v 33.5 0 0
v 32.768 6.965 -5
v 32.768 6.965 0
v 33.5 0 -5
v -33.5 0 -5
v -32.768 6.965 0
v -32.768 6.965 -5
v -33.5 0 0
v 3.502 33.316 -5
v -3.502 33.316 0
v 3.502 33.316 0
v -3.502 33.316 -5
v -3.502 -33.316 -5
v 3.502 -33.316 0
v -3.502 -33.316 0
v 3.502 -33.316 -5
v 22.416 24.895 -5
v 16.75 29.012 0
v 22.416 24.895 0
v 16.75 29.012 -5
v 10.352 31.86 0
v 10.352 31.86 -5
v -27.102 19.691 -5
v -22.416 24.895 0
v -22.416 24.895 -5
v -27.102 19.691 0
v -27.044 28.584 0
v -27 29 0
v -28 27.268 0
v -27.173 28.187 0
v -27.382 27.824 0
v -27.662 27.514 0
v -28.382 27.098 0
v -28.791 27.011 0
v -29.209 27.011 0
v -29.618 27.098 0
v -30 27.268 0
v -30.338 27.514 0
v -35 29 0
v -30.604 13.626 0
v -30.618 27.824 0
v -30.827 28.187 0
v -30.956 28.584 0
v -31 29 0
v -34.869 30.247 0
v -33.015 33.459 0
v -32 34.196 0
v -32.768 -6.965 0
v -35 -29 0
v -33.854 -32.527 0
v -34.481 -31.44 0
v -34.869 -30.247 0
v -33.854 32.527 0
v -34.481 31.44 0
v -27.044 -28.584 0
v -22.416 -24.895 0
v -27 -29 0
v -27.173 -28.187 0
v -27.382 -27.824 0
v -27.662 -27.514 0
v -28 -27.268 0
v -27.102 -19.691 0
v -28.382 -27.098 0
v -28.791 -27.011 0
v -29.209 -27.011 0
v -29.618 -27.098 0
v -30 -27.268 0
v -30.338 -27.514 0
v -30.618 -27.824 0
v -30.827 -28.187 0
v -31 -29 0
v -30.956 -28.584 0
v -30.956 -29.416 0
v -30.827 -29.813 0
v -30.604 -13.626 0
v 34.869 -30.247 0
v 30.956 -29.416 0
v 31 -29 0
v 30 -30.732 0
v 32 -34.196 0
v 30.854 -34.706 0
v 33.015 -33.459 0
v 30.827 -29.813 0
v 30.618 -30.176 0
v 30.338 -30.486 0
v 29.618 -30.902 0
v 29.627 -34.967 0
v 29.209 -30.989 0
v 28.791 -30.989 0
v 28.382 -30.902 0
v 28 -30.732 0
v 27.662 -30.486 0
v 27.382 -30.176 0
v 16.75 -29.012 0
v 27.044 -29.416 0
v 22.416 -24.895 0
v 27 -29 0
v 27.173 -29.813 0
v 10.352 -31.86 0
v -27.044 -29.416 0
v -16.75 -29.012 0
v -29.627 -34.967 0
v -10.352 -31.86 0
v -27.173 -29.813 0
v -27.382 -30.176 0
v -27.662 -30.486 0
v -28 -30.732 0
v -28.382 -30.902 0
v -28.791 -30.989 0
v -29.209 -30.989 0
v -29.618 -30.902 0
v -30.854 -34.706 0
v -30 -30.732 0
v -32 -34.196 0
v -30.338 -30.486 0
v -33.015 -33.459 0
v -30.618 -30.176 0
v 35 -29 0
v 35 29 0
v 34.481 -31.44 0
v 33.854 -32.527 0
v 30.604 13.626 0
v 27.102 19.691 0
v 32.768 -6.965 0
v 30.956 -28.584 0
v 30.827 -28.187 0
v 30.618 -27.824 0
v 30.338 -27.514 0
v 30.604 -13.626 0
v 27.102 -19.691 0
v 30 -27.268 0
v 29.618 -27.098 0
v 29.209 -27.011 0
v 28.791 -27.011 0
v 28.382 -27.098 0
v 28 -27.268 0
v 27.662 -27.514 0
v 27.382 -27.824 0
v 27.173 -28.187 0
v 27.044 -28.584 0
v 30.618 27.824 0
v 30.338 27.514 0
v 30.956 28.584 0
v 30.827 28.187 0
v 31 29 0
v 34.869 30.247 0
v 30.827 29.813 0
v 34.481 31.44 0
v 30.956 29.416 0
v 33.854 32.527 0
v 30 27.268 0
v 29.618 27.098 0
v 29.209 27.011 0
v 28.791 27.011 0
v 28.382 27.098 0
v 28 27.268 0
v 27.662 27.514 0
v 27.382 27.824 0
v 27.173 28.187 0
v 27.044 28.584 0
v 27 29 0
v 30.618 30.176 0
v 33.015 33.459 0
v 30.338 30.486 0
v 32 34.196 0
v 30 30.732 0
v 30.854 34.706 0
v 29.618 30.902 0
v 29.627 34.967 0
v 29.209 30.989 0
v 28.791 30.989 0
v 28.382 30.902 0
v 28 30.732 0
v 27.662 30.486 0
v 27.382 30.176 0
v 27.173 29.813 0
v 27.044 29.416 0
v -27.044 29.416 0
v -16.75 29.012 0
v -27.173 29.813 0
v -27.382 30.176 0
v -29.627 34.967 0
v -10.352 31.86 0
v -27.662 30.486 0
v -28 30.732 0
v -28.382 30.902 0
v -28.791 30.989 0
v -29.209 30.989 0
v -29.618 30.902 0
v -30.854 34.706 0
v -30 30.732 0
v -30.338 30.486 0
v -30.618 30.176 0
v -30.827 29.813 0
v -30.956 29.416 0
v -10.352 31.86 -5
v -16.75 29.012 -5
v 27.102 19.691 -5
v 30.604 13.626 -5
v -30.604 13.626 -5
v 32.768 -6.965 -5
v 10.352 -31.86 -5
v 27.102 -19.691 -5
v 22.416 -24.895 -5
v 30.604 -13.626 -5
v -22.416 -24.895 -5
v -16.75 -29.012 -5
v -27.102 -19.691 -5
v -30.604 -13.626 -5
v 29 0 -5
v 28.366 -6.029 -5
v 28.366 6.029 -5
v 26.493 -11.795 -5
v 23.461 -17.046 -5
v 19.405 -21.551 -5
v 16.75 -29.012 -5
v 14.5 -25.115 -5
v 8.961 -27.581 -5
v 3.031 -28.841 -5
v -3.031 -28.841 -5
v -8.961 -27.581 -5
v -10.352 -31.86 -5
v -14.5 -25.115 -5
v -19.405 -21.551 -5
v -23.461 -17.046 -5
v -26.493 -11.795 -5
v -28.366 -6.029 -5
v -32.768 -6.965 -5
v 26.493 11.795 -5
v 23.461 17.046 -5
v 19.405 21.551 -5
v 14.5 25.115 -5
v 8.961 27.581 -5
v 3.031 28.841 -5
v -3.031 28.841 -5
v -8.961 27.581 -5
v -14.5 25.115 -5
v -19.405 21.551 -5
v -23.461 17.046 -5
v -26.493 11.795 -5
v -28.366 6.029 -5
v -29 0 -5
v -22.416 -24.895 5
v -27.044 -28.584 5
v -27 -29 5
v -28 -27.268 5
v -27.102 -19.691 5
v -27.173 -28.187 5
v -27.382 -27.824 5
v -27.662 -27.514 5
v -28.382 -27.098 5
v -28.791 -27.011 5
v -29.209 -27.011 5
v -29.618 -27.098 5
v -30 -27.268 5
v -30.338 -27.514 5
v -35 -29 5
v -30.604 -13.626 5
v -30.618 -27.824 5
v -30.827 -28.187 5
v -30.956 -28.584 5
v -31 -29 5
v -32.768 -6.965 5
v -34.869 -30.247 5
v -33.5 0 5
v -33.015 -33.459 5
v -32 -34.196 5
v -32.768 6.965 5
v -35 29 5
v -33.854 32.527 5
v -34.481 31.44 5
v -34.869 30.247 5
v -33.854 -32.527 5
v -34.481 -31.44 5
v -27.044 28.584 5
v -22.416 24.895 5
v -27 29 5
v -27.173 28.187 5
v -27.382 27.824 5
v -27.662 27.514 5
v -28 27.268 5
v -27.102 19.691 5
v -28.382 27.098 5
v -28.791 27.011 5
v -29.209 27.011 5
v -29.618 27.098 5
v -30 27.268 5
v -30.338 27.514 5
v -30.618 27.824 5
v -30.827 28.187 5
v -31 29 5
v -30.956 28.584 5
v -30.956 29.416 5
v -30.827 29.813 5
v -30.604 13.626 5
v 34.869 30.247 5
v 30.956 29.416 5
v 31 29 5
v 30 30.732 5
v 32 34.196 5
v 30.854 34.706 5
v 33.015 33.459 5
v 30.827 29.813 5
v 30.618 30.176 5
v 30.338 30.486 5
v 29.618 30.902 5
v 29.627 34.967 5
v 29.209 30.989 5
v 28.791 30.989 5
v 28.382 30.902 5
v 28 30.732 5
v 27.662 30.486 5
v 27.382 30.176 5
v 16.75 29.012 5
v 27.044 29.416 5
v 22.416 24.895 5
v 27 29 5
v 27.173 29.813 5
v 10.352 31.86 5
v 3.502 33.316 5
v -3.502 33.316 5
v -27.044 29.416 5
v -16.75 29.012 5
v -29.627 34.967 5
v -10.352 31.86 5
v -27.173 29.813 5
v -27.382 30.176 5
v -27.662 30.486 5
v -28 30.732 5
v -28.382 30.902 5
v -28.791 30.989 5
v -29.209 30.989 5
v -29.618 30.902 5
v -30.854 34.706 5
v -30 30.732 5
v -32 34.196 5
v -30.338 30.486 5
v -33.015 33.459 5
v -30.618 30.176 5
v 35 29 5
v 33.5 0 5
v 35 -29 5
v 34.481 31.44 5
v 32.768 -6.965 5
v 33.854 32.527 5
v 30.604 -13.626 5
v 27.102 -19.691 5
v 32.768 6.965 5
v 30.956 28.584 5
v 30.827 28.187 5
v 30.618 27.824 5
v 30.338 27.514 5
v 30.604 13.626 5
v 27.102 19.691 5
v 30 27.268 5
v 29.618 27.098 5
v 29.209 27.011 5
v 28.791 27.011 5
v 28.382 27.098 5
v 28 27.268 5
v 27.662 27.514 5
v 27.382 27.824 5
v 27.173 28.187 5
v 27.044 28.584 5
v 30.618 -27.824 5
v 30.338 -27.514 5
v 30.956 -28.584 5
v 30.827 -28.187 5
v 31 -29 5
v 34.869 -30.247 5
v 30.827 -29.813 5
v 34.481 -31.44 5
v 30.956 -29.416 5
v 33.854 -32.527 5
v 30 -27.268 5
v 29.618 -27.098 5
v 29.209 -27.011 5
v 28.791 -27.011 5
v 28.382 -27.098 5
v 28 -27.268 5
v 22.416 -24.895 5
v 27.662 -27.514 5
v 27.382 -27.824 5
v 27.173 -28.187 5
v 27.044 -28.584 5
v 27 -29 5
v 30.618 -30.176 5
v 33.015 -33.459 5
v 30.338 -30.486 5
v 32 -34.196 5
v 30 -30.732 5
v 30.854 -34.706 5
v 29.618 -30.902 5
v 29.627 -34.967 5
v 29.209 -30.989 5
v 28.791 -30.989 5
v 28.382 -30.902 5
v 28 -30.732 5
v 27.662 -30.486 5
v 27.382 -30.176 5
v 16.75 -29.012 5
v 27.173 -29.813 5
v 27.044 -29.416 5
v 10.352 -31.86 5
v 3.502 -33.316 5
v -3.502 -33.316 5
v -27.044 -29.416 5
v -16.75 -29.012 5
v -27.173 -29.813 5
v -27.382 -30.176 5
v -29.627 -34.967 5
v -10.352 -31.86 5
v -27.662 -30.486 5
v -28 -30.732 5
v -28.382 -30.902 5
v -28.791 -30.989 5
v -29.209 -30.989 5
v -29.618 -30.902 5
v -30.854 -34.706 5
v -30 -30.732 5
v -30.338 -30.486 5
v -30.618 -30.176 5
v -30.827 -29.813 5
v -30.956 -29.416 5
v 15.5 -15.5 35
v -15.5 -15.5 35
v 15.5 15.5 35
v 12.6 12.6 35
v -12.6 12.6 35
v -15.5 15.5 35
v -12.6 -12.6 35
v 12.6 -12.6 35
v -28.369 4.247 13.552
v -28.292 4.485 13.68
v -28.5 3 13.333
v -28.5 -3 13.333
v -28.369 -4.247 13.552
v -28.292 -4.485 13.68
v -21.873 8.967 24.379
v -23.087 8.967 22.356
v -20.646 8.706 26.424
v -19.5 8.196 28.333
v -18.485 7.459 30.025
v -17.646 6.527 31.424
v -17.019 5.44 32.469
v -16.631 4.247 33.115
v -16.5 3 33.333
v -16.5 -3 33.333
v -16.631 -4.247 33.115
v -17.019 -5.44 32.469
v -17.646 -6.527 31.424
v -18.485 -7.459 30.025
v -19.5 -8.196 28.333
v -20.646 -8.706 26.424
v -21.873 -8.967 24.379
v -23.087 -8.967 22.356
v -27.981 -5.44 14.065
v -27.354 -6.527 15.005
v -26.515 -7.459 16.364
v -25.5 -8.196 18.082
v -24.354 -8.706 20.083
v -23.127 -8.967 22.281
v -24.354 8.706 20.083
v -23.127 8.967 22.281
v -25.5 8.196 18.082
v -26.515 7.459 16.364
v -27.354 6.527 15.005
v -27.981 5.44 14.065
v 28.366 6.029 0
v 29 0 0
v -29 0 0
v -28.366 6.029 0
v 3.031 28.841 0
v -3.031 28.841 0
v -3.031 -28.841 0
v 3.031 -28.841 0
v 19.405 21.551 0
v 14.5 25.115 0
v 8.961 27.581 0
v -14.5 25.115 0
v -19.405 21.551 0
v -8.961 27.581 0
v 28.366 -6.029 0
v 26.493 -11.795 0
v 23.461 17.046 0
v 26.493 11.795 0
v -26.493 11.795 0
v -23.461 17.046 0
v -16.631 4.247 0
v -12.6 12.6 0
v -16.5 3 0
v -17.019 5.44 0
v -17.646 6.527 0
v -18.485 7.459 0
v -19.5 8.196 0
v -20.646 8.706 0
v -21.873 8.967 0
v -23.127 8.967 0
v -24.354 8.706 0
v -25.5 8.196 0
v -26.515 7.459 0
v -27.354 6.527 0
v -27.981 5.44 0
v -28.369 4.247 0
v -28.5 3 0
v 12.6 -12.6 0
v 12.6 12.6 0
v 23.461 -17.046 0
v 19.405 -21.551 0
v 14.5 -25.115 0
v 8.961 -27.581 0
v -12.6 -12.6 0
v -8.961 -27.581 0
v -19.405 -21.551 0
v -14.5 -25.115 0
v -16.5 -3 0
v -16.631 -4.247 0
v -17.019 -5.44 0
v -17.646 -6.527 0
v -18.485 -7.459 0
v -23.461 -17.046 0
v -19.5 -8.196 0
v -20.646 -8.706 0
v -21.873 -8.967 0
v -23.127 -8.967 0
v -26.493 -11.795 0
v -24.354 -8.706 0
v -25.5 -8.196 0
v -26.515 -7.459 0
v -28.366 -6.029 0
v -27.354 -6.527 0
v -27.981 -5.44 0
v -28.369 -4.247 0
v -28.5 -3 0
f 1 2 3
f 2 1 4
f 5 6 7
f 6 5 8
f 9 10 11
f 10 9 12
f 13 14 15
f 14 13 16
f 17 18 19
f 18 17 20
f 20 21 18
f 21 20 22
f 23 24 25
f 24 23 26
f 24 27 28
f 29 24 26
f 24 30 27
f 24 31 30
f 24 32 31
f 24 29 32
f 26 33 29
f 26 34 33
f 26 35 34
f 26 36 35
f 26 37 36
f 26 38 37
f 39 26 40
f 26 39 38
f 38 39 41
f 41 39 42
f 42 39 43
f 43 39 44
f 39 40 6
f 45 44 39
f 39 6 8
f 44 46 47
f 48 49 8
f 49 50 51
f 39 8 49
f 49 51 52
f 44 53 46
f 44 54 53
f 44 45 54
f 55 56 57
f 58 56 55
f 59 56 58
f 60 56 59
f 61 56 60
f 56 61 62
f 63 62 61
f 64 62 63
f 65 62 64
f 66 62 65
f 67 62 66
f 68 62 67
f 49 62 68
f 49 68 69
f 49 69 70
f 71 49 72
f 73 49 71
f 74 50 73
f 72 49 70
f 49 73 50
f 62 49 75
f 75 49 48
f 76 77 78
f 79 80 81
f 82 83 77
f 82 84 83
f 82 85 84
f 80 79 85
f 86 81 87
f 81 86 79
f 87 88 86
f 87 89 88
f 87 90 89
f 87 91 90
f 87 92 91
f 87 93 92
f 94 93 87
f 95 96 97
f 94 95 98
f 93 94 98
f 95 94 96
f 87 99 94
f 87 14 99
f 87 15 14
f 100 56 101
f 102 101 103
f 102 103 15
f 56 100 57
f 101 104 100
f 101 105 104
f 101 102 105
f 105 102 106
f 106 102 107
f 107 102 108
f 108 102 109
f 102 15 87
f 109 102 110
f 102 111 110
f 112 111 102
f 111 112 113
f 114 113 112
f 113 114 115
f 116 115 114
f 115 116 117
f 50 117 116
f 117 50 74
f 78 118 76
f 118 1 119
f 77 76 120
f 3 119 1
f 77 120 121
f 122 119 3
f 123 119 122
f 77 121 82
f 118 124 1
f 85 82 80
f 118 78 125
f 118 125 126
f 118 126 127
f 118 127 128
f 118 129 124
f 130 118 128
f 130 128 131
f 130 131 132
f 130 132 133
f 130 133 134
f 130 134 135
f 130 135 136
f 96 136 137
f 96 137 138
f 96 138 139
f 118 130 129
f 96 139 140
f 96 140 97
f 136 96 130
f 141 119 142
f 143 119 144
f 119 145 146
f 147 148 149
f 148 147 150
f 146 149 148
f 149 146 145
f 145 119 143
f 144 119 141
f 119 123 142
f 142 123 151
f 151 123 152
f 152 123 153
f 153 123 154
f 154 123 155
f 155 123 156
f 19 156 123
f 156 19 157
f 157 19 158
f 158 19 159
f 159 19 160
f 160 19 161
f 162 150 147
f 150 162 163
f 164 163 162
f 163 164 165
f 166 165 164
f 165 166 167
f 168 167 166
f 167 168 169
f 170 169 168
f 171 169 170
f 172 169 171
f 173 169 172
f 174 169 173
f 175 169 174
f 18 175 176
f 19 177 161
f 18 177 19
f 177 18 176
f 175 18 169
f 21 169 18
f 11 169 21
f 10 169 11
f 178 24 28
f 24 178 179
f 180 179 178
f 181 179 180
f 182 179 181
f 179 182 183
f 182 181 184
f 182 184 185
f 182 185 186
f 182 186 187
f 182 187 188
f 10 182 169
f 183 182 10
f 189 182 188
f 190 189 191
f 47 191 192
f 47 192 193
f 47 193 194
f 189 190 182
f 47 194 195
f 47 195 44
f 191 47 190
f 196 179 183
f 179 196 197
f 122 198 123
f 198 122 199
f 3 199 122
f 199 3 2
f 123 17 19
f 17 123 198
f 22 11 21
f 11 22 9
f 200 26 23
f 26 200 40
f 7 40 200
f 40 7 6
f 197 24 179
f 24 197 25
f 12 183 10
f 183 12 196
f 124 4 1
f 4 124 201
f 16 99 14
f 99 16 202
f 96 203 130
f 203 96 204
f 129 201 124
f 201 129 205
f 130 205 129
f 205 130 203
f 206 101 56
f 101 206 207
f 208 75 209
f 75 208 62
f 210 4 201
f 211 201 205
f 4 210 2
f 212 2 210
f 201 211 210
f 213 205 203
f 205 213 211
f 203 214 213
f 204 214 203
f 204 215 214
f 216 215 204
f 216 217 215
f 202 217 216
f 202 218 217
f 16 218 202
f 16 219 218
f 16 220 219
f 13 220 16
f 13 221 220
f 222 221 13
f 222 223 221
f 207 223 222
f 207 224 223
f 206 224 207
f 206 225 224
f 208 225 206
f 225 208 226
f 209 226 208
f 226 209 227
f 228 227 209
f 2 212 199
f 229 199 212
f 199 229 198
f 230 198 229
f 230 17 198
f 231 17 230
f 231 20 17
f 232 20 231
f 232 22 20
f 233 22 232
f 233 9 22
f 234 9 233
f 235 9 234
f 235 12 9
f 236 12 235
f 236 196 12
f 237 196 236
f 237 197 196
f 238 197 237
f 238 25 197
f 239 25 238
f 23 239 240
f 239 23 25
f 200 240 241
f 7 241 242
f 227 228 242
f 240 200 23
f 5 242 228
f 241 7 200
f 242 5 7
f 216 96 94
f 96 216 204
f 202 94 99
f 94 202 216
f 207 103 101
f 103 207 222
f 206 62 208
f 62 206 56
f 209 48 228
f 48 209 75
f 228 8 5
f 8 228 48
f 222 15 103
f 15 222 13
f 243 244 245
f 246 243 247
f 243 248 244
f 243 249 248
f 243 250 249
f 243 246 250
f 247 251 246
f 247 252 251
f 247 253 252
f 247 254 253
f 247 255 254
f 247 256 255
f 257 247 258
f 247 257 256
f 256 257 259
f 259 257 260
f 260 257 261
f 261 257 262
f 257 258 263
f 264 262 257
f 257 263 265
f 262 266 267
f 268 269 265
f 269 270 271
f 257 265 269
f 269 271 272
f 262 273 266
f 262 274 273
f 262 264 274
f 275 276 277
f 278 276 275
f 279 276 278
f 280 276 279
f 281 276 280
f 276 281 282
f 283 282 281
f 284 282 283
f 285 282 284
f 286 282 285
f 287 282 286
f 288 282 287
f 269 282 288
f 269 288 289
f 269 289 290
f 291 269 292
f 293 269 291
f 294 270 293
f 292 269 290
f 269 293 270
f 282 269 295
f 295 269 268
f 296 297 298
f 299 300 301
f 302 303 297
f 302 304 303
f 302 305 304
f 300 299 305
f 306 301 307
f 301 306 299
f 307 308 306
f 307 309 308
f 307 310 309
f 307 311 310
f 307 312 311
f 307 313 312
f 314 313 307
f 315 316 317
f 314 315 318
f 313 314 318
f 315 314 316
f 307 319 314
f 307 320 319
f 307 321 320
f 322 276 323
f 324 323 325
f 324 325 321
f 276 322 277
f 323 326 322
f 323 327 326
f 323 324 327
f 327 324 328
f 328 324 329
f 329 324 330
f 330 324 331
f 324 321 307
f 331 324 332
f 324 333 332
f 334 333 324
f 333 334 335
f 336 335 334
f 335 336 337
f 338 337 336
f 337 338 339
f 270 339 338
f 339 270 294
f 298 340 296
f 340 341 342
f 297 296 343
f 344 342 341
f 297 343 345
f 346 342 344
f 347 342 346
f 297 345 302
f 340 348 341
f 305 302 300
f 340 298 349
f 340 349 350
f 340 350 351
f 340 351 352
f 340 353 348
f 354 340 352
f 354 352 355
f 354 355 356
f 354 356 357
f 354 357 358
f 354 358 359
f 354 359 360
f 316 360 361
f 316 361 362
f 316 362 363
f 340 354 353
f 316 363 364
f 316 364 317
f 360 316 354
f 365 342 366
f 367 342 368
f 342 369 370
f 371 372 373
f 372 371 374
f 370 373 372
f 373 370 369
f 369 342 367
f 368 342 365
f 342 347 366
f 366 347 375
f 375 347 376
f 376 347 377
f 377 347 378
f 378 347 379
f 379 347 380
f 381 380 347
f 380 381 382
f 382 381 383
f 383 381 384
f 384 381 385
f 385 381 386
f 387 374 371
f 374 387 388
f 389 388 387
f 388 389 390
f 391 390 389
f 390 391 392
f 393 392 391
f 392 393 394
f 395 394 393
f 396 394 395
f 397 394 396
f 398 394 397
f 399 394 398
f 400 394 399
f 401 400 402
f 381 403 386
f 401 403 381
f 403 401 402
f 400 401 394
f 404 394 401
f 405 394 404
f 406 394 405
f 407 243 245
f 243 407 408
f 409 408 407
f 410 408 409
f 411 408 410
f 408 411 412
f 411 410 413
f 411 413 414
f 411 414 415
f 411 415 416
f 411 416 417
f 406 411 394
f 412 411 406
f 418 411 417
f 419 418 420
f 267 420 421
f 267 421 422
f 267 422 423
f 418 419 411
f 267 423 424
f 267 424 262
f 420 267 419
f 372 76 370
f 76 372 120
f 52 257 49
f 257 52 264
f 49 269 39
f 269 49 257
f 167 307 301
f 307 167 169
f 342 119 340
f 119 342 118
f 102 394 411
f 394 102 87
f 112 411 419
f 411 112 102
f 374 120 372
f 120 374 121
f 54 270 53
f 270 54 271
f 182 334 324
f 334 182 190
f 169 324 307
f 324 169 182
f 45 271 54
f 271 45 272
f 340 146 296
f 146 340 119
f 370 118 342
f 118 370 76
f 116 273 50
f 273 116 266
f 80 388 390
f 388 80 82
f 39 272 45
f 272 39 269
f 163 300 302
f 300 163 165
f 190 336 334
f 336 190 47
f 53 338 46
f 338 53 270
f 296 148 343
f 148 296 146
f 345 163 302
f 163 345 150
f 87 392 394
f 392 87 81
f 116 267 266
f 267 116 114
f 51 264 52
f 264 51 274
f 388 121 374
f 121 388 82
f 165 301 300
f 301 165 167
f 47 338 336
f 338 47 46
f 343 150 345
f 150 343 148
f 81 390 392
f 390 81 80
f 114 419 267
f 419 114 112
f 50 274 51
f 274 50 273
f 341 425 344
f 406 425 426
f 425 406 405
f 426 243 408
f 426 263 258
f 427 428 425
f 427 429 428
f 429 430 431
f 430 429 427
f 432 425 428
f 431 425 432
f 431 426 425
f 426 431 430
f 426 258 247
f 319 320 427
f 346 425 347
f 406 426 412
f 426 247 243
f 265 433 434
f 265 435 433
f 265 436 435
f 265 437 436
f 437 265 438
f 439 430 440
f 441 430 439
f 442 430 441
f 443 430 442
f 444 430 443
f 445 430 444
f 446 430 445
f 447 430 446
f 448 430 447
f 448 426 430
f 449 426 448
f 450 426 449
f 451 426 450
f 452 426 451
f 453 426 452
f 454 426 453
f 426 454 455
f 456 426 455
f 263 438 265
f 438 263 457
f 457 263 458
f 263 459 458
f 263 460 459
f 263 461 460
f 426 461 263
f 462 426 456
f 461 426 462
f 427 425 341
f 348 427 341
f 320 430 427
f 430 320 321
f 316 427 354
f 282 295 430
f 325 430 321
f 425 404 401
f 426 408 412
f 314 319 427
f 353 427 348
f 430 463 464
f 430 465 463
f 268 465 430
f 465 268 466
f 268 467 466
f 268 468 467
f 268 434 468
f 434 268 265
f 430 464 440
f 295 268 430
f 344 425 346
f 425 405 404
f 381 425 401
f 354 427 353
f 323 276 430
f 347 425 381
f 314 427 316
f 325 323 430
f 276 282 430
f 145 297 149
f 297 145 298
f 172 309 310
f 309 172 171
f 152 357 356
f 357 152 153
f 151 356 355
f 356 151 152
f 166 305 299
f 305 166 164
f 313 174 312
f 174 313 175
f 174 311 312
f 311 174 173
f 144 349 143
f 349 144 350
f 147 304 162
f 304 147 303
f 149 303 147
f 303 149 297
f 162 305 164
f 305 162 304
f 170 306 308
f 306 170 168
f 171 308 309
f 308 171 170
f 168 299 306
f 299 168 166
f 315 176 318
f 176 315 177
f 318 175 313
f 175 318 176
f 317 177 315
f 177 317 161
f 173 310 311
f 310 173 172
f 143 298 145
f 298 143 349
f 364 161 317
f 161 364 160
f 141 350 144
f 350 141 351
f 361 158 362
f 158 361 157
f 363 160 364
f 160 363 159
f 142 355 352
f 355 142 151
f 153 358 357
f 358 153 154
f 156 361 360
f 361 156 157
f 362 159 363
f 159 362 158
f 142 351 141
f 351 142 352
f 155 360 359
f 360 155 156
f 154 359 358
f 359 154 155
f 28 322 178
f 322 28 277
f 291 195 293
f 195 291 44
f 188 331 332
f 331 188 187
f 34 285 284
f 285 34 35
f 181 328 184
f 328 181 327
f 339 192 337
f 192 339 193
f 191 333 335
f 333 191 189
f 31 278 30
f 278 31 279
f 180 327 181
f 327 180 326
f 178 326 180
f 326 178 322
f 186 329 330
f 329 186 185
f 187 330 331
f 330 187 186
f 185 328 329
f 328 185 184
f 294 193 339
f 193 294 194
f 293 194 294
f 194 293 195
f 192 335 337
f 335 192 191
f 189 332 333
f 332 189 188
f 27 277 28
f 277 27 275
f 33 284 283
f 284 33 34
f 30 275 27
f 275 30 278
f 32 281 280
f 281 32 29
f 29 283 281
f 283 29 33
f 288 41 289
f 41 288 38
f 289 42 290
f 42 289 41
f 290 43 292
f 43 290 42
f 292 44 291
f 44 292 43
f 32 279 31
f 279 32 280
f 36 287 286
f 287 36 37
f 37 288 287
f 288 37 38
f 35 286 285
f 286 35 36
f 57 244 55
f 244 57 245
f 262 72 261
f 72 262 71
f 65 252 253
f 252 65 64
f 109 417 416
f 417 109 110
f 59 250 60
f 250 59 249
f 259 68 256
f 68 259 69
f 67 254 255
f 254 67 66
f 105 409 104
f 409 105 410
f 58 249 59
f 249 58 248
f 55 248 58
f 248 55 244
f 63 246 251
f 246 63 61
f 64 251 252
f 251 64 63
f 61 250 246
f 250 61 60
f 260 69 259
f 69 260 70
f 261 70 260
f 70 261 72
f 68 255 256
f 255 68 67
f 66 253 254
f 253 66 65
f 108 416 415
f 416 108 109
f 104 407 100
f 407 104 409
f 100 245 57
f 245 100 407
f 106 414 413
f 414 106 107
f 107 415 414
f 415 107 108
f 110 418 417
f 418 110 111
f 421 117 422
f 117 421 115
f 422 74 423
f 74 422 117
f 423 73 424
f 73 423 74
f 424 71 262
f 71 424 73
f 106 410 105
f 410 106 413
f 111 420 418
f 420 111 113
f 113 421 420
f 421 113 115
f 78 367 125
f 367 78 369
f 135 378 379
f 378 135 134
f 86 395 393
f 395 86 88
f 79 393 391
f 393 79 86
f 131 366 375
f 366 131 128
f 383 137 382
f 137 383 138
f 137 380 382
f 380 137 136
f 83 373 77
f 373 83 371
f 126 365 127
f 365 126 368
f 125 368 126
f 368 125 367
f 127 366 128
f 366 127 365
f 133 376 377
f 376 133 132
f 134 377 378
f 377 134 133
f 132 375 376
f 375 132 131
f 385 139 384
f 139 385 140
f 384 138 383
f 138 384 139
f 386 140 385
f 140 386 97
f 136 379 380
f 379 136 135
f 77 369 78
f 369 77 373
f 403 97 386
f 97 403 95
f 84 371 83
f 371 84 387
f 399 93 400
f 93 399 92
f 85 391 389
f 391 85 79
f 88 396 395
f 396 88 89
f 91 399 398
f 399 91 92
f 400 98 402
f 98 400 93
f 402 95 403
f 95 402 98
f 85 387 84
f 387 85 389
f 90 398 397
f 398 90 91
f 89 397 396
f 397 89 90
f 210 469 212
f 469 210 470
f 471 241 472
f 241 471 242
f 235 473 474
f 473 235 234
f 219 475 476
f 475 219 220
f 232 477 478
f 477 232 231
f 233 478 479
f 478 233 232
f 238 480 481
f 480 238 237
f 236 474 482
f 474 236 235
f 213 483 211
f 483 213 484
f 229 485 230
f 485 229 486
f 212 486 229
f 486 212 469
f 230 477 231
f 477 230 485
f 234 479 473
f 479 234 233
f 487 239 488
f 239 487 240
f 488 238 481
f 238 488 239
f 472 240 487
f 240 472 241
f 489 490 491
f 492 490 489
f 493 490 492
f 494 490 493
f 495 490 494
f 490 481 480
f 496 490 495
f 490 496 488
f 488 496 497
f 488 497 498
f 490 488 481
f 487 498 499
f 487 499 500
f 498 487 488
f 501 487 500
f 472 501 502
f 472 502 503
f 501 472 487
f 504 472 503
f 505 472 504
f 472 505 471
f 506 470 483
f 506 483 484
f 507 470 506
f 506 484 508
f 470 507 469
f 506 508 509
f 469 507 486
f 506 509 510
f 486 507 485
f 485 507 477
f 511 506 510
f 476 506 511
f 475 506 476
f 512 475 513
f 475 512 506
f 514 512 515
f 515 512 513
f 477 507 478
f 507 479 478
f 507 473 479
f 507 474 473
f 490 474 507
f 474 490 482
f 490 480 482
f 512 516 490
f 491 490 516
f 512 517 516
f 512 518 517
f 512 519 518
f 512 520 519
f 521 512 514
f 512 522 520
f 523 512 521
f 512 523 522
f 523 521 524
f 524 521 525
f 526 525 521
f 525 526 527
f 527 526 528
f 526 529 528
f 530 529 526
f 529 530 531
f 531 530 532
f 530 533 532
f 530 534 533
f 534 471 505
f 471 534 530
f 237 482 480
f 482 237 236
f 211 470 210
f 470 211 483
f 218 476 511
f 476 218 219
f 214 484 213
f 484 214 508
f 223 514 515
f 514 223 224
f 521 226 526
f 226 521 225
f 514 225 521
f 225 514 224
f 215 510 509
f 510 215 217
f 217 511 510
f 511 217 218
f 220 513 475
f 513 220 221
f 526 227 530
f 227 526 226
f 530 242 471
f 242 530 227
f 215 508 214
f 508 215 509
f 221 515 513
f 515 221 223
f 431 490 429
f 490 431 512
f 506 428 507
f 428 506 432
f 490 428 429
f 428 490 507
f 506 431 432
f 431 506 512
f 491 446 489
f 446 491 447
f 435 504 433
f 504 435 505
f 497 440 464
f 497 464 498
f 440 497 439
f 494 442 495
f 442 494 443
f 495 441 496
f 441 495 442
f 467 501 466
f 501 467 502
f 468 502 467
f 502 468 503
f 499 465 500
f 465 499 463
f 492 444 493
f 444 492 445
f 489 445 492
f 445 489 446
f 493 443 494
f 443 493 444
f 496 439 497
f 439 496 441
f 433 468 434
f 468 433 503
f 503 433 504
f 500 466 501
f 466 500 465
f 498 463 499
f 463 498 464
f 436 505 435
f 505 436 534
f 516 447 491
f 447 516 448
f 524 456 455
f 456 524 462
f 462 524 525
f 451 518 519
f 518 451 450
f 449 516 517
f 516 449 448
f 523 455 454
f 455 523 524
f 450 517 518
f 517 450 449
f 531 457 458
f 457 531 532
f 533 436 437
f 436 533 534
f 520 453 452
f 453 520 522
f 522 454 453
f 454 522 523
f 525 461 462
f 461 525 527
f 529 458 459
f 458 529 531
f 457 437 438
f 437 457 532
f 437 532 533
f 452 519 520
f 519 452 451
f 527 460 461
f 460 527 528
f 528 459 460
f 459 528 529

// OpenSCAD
difference(){
union(){
translate([0,0,-5])cylinder(r=34-0.5,h=5);
hull(){
translate([0,0,-0])cylinder(r=34-0.5,h=5);

translate([+58/2,+58/2,-0])cylinder(r=6,h=5, $fn=30);
translate([-58/2,+58/2,-0])cylinder(r=6,h=5, $fn=30);
translate([-58/2,-58/2,-0])cylinder(r=6,h=5, $fn=30);
translate([+58/2,-58/2,-0])cylinder(r=6,h=5, $fn=30);
}



hull(){
translate([0,0,-0])cylinder(r=34-0.5,h=5);
translate([-(25+6)/2,-(25+6)/2,-0])cube([25+6,25+6,35]);
    
    
}
}
translate([+58/2,+58/2,-10])cylinder(r=2,h=40, $fn=30);
translate([-58/2,+58/2,-10])cylinder(r=2,h=40, $fn=30);
translate([-58/2,-58/2,-10])cylinder(r=2,h=40, $fn=30);
translate([+58/2,-58/2,-10])cylinder(r=2,h=40, $fn=30);

translate([0,0,-6])cylinder(r=29,h=6);

translate([-(25.2)/2,-(25.2)/2,-10])cube([25.2,25.2,135]);


translate([-45/2,3,-10])cylinder(r=6,h=80, $fn=30);
translate([-45/2-6,-3,-10])cube([12,6,135]);
translate([-45/2,-3,-10])cylinder(r=6,h=80, $fn=30);
}
